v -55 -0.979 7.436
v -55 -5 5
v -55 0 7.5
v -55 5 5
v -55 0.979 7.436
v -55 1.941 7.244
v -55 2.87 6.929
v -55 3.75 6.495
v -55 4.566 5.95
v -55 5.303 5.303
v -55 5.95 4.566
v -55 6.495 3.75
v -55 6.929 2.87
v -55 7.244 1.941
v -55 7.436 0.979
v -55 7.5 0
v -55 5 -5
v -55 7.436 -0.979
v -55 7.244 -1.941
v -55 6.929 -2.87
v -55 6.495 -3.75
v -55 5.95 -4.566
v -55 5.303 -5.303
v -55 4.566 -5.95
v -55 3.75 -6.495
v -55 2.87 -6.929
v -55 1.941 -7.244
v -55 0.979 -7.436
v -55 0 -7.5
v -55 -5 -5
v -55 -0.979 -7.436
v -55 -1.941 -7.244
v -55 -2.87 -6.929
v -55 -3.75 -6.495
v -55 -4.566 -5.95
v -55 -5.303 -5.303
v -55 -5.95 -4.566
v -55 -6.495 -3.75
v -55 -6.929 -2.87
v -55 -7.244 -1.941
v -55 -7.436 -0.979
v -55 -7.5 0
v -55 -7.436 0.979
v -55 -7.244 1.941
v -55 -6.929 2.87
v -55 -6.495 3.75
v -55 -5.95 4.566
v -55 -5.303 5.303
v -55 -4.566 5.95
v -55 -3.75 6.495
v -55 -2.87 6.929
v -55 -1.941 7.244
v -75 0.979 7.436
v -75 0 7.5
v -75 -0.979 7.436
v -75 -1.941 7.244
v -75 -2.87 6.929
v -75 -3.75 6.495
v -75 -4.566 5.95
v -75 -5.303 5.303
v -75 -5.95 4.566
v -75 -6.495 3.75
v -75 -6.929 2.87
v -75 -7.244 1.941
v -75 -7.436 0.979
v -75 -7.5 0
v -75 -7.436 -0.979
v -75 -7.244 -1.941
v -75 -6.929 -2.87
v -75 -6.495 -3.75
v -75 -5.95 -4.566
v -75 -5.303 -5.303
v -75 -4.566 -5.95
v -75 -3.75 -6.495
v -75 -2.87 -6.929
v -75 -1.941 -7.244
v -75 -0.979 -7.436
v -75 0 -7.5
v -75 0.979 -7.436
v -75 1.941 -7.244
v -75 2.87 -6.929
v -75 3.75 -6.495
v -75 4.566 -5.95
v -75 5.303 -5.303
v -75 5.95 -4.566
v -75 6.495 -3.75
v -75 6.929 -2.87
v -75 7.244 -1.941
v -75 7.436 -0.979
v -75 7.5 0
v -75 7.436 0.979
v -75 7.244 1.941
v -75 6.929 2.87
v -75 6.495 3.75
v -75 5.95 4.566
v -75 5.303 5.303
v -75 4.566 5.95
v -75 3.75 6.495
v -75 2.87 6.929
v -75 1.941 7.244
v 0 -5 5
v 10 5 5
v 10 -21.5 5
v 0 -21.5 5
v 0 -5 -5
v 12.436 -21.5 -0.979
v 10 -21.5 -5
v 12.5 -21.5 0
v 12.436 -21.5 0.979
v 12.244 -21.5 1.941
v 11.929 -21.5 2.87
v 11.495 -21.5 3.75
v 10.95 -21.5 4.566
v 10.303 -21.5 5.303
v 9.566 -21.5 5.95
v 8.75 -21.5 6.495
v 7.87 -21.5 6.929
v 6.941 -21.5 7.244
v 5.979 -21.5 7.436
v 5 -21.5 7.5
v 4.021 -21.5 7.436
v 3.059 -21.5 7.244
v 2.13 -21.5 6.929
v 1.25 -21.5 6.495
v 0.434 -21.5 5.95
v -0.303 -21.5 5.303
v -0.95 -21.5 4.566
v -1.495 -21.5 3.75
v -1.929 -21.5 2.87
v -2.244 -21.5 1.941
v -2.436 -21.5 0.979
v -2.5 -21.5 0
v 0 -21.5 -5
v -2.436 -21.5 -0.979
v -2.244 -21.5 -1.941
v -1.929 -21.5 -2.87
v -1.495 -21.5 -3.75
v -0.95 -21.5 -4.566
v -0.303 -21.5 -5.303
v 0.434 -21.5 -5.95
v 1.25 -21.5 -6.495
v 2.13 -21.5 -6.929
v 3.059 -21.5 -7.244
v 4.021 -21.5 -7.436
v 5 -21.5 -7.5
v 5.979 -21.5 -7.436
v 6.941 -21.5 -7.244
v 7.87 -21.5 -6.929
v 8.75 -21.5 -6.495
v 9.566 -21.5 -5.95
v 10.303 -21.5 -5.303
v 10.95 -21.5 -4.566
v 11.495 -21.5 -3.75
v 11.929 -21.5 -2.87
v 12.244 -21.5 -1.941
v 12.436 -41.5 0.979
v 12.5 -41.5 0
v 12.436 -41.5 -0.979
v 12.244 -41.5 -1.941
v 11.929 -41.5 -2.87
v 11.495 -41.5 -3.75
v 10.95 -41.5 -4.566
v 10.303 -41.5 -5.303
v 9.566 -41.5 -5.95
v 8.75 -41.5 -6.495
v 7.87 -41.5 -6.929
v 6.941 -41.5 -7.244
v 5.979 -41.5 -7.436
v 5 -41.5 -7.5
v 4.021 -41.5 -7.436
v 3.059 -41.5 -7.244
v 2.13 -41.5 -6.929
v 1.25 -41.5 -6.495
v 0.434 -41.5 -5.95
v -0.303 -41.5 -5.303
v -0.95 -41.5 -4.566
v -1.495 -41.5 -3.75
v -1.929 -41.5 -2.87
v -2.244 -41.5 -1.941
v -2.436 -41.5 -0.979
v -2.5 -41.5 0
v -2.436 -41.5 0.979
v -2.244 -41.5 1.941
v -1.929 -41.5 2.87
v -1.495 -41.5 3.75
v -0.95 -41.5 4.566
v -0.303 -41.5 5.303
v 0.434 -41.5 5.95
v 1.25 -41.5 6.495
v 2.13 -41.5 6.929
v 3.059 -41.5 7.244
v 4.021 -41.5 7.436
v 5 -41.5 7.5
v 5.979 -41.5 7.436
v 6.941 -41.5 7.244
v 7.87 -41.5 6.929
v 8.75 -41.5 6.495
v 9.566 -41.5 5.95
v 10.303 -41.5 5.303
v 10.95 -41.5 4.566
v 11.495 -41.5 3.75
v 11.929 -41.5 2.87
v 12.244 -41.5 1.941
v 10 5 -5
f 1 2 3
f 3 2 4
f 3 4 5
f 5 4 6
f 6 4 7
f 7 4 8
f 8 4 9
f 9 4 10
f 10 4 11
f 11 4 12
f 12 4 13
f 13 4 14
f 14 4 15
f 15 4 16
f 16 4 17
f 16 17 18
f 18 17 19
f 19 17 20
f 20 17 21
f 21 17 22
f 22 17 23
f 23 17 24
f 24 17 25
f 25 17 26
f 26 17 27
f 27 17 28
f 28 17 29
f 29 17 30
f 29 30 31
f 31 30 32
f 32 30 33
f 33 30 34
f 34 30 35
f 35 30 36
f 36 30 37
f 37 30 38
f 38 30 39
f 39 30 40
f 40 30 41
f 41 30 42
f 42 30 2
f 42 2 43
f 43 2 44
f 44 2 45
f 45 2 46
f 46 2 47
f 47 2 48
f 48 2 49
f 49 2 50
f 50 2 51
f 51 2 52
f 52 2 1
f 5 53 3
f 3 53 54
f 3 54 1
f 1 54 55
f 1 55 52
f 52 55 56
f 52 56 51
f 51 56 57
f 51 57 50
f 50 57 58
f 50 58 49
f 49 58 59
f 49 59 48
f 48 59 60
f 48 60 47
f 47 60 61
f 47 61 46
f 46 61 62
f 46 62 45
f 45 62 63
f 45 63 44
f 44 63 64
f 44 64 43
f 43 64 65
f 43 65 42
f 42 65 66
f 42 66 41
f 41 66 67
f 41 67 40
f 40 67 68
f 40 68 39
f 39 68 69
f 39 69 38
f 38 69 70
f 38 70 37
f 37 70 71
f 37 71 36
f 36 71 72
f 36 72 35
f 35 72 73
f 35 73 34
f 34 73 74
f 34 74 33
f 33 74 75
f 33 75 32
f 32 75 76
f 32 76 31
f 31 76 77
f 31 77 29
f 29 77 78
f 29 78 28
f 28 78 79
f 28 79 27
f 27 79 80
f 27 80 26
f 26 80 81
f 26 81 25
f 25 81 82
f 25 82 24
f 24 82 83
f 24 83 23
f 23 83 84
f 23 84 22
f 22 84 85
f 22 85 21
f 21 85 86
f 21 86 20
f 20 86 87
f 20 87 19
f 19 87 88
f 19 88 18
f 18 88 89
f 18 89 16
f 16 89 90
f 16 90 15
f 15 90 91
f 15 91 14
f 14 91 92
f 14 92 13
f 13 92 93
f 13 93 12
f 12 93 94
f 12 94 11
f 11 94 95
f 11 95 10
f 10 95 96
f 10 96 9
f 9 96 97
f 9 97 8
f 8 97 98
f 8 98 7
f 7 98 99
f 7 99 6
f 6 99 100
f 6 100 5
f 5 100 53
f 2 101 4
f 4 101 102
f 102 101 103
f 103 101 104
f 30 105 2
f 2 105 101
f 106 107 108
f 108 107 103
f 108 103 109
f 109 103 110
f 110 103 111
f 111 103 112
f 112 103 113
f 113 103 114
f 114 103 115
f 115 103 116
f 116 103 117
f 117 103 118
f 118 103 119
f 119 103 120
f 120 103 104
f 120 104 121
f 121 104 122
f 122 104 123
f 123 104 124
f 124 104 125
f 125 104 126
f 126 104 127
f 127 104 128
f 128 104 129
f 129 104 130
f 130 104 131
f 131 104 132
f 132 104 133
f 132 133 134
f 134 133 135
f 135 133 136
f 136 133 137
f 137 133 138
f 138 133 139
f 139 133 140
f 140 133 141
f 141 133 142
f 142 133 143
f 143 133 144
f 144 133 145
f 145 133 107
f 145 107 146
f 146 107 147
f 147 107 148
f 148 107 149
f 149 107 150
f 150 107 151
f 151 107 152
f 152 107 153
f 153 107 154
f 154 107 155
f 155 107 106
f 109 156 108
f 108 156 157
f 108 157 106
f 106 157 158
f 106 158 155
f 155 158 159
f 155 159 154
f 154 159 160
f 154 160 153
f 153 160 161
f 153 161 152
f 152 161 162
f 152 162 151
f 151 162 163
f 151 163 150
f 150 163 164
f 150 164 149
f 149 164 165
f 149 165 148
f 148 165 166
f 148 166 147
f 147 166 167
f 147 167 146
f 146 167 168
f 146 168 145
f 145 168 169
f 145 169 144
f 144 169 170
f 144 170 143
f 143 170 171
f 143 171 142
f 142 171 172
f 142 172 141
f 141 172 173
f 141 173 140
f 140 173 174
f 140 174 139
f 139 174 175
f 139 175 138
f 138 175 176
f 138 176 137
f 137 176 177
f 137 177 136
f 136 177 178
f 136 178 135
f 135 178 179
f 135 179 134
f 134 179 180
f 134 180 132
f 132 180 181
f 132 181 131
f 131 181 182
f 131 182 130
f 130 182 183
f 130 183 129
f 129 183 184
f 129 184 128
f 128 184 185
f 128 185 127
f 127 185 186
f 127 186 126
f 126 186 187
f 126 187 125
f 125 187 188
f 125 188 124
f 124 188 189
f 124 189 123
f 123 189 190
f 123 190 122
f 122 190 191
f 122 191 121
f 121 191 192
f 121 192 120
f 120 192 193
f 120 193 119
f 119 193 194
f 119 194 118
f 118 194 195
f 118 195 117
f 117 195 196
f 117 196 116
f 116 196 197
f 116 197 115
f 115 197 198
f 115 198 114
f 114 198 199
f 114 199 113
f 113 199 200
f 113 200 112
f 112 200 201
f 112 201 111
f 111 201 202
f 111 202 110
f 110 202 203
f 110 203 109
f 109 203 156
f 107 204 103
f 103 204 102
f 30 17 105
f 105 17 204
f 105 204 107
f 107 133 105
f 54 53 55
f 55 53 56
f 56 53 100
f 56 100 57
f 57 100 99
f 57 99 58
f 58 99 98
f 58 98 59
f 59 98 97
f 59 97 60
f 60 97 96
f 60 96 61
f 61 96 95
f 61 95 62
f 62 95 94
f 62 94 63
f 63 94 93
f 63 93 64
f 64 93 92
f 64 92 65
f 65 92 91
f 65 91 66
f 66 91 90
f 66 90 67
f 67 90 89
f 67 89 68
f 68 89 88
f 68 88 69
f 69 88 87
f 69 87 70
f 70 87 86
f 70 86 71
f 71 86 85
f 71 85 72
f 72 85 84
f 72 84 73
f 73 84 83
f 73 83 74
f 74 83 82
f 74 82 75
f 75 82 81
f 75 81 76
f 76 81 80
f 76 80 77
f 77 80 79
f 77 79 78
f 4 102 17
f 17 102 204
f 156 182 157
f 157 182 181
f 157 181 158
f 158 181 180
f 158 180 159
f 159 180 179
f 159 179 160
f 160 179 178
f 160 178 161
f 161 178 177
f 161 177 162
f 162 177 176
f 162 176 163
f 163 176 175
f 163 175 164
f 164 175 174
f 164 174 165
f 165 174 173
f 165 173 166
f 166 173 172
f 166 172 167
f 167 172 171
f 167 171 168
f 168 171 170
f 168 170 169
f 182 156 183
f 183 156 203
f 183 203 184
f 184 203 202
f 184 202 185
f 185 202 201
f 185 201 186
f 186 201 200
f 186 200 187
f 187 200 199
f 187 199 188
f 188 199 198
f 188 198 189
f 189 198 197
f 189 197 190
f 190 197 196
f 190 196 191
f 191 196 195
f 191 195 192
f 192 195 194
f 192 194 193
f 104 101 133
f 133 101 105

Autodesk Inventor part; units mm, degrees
ref_plane "YZ Plane" through (0, 0, 0) normal (1, 0, 0) x (0, 1, 0)
ref_plane "XZ Plane" through (0, 0, 0) normal (0, 1, 0) x (-1, 0, 0)
ref_plane "XY Plane" through (0, 0, 0) normal (0, 0, 1) x (1, 0, 0)
sketch "スケッチ1" plane through (0, 0, 0) normal (0, 0, 1) x (1, 0, 0)
  line L0 (-75, -5) -> (-75, 5)
  line L1 (-75, 5) -> (10, 5)
  line L2 (10, 5) -> (10, -41.5)
  line L3 (10, -41.5) -> (0, -41.5)
  line L4 (0, -41.5) -> (0, -5)
  line L5 (0, -5) -> (-75, -5)
  point P0 (0, 0)
  dimension "d0" = 85
  dimension "d1" = 46.5
  dimension "d2" = 10
  dimension "d3" = 10
  dimension "d4" = 10
  dimension "d6" = 5
extrude "押し出し1" add sketch "スケッチ1" along normal blind 5 and the other way blind 5
sketch "スケッチ2" plane through (0, -41.5, 5) normal (0, -1, 0) x (1, 0, 0)
  circle A0 centre (5, -5) radius 7.5
  line L0 (0, -10) -> (0, 0) projected
  point P0 (0, -5)
  point P1 (0, -5)
  dimension "d11" = 15
  dimension "d12" = 5
  dimension "d13" = 5
extrude "押し出し2" add sketch "スケッチ2" against normal blind 20
sketch "スケッチ3" plane through (-75, -5, 5) normal (-1, 0, 0) x (0, 0, 1)
  circle A0 centre (-5, 5) radius 7.5
  dimension "d16" = 15
extrude "押し出し3" add sketch "スケッチ3" against normal blind 20
properties part number "r_link_wr2wp"
